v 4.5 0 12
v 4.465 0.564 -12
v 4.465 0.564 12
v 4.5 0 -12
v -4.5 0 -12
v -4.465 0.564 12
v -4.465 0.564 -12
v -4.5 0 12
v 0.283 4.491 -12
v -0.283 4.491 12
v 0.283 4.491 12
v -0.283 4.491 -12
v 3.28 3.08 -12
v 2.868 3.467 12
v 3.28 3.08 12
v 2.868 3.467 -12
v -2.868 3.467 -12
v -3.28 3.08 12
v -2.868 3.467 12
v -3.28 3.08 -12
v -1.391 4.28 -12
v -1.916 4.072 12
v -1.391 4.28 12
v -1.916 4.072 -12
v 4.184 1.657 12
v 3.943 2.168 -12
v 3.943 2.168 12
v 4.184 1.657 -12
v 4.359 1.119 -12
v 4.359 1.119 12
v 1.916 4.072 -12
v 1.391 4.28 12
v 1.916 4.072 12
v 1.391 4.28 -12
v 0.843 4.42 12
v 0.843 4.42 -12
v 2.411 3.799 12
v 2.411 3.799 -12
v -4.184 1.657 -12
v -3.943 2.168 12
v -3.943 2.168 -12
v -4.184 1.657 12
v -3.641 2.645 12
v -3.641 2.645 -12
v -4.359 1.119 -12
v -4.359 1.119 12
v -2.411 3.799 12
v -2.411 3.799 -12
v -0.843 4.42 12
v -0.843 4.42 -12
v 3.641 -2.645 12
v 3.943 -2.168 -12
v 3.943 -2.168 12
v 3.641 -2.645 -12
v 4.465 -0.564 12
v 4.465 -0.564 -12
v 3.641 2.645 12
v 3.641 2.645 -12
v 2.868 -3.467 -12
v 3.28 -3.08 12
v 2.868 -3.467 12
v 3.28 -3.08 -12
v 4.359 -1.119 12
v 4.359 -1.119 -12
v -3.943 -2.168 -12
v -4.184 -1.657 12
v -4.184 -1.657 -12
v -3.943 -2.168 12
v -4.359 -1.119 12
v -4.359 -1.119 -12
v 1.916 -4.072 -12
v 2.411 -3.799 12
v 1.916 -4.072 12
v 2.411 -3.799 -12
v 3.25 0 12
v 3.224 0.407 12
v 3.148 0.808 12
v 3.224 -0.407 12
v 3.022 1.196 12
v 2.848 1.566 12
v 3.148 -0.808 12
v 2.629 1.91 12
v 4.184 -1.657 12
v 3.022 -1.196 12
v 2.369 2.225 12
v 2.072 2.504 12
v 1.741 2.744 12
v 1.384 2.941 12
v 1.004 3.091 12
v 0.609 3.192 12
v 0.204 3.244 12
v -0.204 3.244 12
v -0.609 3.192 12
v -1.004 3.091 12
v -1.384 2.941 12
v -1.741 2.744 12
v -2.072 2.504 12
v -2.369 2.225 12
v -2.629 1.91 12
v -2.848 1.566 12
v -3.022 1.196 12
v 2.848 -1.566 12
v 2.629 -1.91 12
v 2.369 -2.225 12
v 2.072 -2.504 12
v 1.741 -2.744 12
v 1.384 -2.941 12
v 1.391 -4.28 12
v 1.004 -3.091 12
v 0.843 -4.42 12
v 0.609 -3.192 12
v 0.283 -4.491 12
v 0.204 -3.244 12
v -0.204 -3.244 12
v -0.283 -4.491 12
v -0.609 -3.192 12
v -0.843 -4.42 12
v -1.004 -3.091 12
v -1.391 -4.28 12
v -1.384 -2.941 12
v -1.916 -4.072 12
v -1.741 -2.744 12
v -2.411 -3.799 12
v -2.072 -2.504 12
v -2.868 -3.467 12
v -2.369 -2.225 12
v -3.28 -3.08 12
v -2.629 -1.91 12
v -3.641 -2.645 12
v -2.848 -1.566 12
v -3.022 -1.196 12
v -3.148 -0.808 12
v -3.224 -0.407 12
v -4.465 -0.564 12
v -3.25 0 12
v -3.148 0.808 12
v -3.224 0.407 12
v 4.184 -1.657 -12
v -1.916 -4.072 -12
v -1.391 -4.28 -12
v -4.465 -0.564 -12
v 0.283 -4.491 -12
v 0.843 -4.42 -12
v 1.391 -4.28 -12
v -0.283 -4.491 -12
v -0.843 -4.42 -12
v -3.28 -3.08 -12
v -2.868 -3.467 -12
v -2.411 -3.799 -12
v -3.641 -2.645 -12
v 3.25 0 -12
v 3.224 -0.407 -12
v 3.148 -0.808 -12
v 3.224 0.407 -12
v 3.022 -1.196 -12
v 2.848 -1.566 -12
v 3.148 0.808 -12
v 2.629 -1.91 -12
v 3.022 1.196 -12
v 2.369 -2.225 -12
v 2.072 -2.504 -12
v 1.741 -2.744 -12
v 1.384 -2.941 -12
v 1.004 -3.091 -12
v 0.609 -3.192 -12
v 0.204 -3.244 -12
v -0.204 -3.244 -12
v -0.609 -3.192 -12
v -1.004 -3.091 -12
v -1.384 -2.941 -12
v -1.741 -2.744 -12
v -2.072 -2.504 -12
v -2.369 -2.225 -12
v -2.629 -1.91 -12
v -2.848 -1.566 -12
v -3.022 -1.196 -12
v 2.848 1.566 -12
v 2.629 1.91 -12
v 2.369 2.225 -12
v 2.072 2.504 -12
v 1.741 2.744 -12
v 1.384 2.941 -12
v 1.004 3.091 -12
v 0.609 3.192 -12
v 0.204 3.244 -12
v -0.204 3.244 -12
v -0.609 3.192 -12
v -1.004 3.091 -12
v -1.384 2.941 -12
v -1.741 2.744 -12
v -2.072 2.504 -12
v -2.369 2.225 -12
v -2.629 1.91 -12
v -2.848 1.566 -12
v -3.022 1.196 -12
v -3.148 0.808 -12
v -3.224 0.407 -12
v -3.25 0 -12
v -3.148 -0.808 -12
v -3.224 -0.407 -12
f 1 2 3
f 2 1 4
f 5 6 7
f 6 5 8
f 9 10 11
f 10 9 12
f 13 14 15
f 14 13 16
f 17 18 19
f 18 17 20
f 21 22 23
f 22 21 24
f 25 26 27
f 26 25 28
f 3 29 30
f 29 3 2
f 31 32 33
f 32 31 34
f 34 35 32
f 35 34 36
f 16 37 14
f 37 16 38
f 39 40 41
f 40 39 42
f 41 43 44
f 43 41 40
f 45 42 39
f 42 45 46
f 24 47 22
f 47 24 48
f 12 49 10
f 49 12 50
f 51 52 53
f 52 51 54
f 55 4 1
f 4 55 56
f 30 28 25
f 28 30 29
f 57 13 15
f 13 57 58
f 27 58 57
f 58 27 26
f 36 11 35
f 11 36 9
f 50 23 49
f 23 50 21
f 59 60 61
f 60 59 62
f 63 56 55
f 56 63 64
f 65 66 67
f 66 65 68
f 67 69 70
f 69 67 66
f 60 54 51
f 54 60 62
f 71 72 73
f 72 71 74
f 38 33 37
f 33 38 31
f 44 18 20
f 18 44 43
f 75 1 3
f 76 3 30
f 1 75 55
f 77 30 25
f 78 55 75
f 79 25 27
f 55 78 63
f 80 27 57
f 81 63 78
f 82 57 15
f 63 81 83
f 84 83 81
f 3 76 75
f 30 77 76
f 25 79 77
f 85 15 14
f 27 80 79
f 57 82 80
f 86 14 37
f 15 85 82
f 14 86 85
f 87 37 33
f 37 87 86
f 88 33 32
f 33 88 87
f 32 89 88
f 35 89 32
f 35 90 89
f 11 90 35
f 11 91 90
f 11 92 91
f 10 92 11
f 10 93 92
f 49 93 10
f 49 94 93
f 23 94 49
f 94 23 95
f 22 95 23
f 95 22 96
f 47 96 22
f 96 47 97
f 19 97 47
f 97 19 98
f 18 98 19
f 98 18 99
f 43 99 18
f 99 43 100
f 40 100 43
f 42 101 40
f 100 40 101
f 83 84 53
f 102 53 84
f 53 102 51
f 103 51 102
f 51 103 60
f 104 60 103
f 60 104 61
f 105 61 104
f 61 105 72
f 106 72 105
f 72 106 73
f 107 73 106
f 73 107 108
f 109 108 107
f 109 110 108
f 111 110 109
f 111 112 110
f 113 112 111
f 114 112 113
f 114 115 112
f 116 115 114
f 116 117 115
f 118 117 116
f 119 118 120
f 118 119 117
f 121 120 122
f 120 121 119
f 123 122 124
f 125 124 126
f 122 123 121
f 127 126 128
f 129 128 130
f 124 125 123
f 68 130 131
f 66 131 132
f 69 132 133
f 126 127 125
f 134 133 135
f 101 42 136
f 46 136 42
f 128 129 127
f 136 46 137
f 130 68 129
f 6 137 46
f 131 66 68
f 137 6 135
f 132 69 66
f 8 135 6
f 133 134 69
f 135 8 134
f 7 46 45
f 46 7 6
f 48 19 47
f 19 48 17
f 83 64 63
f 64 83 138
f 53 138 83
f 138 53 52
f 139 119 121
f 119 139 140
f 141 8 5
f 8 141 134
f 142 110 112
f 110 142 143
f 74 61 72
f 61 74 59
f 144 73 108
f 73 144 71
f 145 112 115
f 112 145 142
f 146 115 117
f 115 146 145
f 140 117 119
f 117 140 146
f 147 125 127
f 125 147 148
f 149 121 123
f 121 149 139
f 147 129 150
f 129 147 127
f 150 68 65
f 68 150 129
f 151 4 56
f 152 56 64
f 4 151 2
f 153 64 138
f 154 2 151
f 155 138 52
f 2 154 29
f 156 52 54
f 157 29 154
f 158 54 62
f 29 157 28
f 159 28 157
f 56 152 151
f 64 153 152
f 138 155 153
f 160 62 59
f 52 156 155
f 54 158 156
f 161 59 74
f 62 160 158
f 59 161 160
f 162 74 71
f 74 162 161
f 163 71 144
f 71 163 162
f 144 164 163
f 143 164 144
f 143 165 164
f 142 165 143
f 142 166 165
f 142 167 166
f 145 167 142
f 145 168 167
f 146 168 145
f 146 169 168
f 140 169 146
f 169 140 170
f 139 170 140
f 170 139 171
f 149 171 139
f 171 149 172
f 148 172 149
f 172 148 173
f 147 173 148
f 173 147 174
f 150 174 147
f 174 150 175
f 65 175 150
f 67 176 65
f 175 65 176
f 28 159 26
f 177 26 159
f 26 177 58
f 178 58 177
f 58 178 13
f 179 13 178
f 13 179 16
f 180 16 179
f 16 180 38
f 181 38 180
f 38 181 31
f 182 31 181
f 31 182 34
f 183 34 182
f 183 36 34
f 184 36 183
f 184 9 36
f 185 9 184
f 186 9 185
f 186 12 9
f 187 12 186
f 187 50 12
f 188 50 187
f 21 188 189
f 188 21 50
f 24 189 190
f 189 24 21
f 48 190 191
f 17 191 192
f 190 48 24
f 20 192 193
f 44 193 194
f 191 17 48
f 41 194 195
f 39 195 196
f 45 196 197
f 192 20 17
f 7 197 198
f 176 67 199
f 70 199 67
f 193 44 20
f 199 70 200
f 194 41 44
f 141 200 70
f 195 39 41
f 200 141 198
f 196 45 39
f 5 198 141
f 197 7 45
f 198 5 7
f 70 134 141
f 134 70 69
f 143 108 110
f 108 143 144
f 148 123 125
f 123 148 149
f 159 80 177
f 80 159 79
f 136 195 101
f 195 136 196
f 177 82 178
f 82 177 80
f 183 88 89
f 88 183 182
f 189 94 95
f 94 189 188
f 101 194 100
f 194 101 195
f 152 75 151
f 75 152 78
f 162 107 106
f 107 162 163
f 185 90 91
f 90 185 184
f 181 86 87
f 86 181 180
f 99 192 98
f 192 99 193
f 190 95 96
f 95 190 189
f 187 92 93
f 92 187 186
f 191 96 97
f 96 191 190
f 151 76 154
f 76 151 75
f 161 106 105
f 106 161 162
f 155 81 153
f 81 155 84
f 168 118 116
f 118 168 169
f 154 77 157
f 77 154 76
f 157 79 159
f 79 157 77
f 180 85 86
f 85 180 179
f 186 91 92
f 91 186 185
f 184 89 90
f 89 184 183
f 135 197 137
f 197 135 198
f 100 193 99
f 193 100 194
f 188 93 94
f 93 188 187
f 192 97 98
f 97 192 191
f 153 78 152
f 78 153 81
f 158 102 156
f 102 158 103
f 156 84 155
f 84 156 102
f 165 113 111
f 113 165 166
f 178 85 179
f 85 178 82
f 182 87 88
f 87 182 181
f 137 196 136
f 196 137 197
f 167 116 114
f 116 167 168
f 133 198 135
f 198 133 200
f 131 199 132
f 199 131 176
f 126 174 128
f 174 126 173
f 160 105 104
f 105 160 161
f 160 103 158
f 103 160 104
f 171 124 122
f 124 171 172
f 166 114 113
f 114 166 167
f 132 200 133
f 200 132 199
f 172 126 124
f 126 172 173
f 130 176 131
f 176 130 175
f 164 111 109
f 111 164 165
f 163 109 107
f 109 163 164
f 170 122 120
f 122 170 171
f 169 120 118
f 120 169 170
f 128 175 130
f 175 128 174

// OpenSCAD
$fn = 50;


difference() {
	union() {
		translate(v = [0, 0, -12.0000000000]) {
			cylinder(h = 24, r = 4.5000000000);
		}
	}
	union() {
		translate(v = [0, 0, -100.0000000000]) {
			cylinder(h = 200, r = 3.2500000000);
		}
	}
}
